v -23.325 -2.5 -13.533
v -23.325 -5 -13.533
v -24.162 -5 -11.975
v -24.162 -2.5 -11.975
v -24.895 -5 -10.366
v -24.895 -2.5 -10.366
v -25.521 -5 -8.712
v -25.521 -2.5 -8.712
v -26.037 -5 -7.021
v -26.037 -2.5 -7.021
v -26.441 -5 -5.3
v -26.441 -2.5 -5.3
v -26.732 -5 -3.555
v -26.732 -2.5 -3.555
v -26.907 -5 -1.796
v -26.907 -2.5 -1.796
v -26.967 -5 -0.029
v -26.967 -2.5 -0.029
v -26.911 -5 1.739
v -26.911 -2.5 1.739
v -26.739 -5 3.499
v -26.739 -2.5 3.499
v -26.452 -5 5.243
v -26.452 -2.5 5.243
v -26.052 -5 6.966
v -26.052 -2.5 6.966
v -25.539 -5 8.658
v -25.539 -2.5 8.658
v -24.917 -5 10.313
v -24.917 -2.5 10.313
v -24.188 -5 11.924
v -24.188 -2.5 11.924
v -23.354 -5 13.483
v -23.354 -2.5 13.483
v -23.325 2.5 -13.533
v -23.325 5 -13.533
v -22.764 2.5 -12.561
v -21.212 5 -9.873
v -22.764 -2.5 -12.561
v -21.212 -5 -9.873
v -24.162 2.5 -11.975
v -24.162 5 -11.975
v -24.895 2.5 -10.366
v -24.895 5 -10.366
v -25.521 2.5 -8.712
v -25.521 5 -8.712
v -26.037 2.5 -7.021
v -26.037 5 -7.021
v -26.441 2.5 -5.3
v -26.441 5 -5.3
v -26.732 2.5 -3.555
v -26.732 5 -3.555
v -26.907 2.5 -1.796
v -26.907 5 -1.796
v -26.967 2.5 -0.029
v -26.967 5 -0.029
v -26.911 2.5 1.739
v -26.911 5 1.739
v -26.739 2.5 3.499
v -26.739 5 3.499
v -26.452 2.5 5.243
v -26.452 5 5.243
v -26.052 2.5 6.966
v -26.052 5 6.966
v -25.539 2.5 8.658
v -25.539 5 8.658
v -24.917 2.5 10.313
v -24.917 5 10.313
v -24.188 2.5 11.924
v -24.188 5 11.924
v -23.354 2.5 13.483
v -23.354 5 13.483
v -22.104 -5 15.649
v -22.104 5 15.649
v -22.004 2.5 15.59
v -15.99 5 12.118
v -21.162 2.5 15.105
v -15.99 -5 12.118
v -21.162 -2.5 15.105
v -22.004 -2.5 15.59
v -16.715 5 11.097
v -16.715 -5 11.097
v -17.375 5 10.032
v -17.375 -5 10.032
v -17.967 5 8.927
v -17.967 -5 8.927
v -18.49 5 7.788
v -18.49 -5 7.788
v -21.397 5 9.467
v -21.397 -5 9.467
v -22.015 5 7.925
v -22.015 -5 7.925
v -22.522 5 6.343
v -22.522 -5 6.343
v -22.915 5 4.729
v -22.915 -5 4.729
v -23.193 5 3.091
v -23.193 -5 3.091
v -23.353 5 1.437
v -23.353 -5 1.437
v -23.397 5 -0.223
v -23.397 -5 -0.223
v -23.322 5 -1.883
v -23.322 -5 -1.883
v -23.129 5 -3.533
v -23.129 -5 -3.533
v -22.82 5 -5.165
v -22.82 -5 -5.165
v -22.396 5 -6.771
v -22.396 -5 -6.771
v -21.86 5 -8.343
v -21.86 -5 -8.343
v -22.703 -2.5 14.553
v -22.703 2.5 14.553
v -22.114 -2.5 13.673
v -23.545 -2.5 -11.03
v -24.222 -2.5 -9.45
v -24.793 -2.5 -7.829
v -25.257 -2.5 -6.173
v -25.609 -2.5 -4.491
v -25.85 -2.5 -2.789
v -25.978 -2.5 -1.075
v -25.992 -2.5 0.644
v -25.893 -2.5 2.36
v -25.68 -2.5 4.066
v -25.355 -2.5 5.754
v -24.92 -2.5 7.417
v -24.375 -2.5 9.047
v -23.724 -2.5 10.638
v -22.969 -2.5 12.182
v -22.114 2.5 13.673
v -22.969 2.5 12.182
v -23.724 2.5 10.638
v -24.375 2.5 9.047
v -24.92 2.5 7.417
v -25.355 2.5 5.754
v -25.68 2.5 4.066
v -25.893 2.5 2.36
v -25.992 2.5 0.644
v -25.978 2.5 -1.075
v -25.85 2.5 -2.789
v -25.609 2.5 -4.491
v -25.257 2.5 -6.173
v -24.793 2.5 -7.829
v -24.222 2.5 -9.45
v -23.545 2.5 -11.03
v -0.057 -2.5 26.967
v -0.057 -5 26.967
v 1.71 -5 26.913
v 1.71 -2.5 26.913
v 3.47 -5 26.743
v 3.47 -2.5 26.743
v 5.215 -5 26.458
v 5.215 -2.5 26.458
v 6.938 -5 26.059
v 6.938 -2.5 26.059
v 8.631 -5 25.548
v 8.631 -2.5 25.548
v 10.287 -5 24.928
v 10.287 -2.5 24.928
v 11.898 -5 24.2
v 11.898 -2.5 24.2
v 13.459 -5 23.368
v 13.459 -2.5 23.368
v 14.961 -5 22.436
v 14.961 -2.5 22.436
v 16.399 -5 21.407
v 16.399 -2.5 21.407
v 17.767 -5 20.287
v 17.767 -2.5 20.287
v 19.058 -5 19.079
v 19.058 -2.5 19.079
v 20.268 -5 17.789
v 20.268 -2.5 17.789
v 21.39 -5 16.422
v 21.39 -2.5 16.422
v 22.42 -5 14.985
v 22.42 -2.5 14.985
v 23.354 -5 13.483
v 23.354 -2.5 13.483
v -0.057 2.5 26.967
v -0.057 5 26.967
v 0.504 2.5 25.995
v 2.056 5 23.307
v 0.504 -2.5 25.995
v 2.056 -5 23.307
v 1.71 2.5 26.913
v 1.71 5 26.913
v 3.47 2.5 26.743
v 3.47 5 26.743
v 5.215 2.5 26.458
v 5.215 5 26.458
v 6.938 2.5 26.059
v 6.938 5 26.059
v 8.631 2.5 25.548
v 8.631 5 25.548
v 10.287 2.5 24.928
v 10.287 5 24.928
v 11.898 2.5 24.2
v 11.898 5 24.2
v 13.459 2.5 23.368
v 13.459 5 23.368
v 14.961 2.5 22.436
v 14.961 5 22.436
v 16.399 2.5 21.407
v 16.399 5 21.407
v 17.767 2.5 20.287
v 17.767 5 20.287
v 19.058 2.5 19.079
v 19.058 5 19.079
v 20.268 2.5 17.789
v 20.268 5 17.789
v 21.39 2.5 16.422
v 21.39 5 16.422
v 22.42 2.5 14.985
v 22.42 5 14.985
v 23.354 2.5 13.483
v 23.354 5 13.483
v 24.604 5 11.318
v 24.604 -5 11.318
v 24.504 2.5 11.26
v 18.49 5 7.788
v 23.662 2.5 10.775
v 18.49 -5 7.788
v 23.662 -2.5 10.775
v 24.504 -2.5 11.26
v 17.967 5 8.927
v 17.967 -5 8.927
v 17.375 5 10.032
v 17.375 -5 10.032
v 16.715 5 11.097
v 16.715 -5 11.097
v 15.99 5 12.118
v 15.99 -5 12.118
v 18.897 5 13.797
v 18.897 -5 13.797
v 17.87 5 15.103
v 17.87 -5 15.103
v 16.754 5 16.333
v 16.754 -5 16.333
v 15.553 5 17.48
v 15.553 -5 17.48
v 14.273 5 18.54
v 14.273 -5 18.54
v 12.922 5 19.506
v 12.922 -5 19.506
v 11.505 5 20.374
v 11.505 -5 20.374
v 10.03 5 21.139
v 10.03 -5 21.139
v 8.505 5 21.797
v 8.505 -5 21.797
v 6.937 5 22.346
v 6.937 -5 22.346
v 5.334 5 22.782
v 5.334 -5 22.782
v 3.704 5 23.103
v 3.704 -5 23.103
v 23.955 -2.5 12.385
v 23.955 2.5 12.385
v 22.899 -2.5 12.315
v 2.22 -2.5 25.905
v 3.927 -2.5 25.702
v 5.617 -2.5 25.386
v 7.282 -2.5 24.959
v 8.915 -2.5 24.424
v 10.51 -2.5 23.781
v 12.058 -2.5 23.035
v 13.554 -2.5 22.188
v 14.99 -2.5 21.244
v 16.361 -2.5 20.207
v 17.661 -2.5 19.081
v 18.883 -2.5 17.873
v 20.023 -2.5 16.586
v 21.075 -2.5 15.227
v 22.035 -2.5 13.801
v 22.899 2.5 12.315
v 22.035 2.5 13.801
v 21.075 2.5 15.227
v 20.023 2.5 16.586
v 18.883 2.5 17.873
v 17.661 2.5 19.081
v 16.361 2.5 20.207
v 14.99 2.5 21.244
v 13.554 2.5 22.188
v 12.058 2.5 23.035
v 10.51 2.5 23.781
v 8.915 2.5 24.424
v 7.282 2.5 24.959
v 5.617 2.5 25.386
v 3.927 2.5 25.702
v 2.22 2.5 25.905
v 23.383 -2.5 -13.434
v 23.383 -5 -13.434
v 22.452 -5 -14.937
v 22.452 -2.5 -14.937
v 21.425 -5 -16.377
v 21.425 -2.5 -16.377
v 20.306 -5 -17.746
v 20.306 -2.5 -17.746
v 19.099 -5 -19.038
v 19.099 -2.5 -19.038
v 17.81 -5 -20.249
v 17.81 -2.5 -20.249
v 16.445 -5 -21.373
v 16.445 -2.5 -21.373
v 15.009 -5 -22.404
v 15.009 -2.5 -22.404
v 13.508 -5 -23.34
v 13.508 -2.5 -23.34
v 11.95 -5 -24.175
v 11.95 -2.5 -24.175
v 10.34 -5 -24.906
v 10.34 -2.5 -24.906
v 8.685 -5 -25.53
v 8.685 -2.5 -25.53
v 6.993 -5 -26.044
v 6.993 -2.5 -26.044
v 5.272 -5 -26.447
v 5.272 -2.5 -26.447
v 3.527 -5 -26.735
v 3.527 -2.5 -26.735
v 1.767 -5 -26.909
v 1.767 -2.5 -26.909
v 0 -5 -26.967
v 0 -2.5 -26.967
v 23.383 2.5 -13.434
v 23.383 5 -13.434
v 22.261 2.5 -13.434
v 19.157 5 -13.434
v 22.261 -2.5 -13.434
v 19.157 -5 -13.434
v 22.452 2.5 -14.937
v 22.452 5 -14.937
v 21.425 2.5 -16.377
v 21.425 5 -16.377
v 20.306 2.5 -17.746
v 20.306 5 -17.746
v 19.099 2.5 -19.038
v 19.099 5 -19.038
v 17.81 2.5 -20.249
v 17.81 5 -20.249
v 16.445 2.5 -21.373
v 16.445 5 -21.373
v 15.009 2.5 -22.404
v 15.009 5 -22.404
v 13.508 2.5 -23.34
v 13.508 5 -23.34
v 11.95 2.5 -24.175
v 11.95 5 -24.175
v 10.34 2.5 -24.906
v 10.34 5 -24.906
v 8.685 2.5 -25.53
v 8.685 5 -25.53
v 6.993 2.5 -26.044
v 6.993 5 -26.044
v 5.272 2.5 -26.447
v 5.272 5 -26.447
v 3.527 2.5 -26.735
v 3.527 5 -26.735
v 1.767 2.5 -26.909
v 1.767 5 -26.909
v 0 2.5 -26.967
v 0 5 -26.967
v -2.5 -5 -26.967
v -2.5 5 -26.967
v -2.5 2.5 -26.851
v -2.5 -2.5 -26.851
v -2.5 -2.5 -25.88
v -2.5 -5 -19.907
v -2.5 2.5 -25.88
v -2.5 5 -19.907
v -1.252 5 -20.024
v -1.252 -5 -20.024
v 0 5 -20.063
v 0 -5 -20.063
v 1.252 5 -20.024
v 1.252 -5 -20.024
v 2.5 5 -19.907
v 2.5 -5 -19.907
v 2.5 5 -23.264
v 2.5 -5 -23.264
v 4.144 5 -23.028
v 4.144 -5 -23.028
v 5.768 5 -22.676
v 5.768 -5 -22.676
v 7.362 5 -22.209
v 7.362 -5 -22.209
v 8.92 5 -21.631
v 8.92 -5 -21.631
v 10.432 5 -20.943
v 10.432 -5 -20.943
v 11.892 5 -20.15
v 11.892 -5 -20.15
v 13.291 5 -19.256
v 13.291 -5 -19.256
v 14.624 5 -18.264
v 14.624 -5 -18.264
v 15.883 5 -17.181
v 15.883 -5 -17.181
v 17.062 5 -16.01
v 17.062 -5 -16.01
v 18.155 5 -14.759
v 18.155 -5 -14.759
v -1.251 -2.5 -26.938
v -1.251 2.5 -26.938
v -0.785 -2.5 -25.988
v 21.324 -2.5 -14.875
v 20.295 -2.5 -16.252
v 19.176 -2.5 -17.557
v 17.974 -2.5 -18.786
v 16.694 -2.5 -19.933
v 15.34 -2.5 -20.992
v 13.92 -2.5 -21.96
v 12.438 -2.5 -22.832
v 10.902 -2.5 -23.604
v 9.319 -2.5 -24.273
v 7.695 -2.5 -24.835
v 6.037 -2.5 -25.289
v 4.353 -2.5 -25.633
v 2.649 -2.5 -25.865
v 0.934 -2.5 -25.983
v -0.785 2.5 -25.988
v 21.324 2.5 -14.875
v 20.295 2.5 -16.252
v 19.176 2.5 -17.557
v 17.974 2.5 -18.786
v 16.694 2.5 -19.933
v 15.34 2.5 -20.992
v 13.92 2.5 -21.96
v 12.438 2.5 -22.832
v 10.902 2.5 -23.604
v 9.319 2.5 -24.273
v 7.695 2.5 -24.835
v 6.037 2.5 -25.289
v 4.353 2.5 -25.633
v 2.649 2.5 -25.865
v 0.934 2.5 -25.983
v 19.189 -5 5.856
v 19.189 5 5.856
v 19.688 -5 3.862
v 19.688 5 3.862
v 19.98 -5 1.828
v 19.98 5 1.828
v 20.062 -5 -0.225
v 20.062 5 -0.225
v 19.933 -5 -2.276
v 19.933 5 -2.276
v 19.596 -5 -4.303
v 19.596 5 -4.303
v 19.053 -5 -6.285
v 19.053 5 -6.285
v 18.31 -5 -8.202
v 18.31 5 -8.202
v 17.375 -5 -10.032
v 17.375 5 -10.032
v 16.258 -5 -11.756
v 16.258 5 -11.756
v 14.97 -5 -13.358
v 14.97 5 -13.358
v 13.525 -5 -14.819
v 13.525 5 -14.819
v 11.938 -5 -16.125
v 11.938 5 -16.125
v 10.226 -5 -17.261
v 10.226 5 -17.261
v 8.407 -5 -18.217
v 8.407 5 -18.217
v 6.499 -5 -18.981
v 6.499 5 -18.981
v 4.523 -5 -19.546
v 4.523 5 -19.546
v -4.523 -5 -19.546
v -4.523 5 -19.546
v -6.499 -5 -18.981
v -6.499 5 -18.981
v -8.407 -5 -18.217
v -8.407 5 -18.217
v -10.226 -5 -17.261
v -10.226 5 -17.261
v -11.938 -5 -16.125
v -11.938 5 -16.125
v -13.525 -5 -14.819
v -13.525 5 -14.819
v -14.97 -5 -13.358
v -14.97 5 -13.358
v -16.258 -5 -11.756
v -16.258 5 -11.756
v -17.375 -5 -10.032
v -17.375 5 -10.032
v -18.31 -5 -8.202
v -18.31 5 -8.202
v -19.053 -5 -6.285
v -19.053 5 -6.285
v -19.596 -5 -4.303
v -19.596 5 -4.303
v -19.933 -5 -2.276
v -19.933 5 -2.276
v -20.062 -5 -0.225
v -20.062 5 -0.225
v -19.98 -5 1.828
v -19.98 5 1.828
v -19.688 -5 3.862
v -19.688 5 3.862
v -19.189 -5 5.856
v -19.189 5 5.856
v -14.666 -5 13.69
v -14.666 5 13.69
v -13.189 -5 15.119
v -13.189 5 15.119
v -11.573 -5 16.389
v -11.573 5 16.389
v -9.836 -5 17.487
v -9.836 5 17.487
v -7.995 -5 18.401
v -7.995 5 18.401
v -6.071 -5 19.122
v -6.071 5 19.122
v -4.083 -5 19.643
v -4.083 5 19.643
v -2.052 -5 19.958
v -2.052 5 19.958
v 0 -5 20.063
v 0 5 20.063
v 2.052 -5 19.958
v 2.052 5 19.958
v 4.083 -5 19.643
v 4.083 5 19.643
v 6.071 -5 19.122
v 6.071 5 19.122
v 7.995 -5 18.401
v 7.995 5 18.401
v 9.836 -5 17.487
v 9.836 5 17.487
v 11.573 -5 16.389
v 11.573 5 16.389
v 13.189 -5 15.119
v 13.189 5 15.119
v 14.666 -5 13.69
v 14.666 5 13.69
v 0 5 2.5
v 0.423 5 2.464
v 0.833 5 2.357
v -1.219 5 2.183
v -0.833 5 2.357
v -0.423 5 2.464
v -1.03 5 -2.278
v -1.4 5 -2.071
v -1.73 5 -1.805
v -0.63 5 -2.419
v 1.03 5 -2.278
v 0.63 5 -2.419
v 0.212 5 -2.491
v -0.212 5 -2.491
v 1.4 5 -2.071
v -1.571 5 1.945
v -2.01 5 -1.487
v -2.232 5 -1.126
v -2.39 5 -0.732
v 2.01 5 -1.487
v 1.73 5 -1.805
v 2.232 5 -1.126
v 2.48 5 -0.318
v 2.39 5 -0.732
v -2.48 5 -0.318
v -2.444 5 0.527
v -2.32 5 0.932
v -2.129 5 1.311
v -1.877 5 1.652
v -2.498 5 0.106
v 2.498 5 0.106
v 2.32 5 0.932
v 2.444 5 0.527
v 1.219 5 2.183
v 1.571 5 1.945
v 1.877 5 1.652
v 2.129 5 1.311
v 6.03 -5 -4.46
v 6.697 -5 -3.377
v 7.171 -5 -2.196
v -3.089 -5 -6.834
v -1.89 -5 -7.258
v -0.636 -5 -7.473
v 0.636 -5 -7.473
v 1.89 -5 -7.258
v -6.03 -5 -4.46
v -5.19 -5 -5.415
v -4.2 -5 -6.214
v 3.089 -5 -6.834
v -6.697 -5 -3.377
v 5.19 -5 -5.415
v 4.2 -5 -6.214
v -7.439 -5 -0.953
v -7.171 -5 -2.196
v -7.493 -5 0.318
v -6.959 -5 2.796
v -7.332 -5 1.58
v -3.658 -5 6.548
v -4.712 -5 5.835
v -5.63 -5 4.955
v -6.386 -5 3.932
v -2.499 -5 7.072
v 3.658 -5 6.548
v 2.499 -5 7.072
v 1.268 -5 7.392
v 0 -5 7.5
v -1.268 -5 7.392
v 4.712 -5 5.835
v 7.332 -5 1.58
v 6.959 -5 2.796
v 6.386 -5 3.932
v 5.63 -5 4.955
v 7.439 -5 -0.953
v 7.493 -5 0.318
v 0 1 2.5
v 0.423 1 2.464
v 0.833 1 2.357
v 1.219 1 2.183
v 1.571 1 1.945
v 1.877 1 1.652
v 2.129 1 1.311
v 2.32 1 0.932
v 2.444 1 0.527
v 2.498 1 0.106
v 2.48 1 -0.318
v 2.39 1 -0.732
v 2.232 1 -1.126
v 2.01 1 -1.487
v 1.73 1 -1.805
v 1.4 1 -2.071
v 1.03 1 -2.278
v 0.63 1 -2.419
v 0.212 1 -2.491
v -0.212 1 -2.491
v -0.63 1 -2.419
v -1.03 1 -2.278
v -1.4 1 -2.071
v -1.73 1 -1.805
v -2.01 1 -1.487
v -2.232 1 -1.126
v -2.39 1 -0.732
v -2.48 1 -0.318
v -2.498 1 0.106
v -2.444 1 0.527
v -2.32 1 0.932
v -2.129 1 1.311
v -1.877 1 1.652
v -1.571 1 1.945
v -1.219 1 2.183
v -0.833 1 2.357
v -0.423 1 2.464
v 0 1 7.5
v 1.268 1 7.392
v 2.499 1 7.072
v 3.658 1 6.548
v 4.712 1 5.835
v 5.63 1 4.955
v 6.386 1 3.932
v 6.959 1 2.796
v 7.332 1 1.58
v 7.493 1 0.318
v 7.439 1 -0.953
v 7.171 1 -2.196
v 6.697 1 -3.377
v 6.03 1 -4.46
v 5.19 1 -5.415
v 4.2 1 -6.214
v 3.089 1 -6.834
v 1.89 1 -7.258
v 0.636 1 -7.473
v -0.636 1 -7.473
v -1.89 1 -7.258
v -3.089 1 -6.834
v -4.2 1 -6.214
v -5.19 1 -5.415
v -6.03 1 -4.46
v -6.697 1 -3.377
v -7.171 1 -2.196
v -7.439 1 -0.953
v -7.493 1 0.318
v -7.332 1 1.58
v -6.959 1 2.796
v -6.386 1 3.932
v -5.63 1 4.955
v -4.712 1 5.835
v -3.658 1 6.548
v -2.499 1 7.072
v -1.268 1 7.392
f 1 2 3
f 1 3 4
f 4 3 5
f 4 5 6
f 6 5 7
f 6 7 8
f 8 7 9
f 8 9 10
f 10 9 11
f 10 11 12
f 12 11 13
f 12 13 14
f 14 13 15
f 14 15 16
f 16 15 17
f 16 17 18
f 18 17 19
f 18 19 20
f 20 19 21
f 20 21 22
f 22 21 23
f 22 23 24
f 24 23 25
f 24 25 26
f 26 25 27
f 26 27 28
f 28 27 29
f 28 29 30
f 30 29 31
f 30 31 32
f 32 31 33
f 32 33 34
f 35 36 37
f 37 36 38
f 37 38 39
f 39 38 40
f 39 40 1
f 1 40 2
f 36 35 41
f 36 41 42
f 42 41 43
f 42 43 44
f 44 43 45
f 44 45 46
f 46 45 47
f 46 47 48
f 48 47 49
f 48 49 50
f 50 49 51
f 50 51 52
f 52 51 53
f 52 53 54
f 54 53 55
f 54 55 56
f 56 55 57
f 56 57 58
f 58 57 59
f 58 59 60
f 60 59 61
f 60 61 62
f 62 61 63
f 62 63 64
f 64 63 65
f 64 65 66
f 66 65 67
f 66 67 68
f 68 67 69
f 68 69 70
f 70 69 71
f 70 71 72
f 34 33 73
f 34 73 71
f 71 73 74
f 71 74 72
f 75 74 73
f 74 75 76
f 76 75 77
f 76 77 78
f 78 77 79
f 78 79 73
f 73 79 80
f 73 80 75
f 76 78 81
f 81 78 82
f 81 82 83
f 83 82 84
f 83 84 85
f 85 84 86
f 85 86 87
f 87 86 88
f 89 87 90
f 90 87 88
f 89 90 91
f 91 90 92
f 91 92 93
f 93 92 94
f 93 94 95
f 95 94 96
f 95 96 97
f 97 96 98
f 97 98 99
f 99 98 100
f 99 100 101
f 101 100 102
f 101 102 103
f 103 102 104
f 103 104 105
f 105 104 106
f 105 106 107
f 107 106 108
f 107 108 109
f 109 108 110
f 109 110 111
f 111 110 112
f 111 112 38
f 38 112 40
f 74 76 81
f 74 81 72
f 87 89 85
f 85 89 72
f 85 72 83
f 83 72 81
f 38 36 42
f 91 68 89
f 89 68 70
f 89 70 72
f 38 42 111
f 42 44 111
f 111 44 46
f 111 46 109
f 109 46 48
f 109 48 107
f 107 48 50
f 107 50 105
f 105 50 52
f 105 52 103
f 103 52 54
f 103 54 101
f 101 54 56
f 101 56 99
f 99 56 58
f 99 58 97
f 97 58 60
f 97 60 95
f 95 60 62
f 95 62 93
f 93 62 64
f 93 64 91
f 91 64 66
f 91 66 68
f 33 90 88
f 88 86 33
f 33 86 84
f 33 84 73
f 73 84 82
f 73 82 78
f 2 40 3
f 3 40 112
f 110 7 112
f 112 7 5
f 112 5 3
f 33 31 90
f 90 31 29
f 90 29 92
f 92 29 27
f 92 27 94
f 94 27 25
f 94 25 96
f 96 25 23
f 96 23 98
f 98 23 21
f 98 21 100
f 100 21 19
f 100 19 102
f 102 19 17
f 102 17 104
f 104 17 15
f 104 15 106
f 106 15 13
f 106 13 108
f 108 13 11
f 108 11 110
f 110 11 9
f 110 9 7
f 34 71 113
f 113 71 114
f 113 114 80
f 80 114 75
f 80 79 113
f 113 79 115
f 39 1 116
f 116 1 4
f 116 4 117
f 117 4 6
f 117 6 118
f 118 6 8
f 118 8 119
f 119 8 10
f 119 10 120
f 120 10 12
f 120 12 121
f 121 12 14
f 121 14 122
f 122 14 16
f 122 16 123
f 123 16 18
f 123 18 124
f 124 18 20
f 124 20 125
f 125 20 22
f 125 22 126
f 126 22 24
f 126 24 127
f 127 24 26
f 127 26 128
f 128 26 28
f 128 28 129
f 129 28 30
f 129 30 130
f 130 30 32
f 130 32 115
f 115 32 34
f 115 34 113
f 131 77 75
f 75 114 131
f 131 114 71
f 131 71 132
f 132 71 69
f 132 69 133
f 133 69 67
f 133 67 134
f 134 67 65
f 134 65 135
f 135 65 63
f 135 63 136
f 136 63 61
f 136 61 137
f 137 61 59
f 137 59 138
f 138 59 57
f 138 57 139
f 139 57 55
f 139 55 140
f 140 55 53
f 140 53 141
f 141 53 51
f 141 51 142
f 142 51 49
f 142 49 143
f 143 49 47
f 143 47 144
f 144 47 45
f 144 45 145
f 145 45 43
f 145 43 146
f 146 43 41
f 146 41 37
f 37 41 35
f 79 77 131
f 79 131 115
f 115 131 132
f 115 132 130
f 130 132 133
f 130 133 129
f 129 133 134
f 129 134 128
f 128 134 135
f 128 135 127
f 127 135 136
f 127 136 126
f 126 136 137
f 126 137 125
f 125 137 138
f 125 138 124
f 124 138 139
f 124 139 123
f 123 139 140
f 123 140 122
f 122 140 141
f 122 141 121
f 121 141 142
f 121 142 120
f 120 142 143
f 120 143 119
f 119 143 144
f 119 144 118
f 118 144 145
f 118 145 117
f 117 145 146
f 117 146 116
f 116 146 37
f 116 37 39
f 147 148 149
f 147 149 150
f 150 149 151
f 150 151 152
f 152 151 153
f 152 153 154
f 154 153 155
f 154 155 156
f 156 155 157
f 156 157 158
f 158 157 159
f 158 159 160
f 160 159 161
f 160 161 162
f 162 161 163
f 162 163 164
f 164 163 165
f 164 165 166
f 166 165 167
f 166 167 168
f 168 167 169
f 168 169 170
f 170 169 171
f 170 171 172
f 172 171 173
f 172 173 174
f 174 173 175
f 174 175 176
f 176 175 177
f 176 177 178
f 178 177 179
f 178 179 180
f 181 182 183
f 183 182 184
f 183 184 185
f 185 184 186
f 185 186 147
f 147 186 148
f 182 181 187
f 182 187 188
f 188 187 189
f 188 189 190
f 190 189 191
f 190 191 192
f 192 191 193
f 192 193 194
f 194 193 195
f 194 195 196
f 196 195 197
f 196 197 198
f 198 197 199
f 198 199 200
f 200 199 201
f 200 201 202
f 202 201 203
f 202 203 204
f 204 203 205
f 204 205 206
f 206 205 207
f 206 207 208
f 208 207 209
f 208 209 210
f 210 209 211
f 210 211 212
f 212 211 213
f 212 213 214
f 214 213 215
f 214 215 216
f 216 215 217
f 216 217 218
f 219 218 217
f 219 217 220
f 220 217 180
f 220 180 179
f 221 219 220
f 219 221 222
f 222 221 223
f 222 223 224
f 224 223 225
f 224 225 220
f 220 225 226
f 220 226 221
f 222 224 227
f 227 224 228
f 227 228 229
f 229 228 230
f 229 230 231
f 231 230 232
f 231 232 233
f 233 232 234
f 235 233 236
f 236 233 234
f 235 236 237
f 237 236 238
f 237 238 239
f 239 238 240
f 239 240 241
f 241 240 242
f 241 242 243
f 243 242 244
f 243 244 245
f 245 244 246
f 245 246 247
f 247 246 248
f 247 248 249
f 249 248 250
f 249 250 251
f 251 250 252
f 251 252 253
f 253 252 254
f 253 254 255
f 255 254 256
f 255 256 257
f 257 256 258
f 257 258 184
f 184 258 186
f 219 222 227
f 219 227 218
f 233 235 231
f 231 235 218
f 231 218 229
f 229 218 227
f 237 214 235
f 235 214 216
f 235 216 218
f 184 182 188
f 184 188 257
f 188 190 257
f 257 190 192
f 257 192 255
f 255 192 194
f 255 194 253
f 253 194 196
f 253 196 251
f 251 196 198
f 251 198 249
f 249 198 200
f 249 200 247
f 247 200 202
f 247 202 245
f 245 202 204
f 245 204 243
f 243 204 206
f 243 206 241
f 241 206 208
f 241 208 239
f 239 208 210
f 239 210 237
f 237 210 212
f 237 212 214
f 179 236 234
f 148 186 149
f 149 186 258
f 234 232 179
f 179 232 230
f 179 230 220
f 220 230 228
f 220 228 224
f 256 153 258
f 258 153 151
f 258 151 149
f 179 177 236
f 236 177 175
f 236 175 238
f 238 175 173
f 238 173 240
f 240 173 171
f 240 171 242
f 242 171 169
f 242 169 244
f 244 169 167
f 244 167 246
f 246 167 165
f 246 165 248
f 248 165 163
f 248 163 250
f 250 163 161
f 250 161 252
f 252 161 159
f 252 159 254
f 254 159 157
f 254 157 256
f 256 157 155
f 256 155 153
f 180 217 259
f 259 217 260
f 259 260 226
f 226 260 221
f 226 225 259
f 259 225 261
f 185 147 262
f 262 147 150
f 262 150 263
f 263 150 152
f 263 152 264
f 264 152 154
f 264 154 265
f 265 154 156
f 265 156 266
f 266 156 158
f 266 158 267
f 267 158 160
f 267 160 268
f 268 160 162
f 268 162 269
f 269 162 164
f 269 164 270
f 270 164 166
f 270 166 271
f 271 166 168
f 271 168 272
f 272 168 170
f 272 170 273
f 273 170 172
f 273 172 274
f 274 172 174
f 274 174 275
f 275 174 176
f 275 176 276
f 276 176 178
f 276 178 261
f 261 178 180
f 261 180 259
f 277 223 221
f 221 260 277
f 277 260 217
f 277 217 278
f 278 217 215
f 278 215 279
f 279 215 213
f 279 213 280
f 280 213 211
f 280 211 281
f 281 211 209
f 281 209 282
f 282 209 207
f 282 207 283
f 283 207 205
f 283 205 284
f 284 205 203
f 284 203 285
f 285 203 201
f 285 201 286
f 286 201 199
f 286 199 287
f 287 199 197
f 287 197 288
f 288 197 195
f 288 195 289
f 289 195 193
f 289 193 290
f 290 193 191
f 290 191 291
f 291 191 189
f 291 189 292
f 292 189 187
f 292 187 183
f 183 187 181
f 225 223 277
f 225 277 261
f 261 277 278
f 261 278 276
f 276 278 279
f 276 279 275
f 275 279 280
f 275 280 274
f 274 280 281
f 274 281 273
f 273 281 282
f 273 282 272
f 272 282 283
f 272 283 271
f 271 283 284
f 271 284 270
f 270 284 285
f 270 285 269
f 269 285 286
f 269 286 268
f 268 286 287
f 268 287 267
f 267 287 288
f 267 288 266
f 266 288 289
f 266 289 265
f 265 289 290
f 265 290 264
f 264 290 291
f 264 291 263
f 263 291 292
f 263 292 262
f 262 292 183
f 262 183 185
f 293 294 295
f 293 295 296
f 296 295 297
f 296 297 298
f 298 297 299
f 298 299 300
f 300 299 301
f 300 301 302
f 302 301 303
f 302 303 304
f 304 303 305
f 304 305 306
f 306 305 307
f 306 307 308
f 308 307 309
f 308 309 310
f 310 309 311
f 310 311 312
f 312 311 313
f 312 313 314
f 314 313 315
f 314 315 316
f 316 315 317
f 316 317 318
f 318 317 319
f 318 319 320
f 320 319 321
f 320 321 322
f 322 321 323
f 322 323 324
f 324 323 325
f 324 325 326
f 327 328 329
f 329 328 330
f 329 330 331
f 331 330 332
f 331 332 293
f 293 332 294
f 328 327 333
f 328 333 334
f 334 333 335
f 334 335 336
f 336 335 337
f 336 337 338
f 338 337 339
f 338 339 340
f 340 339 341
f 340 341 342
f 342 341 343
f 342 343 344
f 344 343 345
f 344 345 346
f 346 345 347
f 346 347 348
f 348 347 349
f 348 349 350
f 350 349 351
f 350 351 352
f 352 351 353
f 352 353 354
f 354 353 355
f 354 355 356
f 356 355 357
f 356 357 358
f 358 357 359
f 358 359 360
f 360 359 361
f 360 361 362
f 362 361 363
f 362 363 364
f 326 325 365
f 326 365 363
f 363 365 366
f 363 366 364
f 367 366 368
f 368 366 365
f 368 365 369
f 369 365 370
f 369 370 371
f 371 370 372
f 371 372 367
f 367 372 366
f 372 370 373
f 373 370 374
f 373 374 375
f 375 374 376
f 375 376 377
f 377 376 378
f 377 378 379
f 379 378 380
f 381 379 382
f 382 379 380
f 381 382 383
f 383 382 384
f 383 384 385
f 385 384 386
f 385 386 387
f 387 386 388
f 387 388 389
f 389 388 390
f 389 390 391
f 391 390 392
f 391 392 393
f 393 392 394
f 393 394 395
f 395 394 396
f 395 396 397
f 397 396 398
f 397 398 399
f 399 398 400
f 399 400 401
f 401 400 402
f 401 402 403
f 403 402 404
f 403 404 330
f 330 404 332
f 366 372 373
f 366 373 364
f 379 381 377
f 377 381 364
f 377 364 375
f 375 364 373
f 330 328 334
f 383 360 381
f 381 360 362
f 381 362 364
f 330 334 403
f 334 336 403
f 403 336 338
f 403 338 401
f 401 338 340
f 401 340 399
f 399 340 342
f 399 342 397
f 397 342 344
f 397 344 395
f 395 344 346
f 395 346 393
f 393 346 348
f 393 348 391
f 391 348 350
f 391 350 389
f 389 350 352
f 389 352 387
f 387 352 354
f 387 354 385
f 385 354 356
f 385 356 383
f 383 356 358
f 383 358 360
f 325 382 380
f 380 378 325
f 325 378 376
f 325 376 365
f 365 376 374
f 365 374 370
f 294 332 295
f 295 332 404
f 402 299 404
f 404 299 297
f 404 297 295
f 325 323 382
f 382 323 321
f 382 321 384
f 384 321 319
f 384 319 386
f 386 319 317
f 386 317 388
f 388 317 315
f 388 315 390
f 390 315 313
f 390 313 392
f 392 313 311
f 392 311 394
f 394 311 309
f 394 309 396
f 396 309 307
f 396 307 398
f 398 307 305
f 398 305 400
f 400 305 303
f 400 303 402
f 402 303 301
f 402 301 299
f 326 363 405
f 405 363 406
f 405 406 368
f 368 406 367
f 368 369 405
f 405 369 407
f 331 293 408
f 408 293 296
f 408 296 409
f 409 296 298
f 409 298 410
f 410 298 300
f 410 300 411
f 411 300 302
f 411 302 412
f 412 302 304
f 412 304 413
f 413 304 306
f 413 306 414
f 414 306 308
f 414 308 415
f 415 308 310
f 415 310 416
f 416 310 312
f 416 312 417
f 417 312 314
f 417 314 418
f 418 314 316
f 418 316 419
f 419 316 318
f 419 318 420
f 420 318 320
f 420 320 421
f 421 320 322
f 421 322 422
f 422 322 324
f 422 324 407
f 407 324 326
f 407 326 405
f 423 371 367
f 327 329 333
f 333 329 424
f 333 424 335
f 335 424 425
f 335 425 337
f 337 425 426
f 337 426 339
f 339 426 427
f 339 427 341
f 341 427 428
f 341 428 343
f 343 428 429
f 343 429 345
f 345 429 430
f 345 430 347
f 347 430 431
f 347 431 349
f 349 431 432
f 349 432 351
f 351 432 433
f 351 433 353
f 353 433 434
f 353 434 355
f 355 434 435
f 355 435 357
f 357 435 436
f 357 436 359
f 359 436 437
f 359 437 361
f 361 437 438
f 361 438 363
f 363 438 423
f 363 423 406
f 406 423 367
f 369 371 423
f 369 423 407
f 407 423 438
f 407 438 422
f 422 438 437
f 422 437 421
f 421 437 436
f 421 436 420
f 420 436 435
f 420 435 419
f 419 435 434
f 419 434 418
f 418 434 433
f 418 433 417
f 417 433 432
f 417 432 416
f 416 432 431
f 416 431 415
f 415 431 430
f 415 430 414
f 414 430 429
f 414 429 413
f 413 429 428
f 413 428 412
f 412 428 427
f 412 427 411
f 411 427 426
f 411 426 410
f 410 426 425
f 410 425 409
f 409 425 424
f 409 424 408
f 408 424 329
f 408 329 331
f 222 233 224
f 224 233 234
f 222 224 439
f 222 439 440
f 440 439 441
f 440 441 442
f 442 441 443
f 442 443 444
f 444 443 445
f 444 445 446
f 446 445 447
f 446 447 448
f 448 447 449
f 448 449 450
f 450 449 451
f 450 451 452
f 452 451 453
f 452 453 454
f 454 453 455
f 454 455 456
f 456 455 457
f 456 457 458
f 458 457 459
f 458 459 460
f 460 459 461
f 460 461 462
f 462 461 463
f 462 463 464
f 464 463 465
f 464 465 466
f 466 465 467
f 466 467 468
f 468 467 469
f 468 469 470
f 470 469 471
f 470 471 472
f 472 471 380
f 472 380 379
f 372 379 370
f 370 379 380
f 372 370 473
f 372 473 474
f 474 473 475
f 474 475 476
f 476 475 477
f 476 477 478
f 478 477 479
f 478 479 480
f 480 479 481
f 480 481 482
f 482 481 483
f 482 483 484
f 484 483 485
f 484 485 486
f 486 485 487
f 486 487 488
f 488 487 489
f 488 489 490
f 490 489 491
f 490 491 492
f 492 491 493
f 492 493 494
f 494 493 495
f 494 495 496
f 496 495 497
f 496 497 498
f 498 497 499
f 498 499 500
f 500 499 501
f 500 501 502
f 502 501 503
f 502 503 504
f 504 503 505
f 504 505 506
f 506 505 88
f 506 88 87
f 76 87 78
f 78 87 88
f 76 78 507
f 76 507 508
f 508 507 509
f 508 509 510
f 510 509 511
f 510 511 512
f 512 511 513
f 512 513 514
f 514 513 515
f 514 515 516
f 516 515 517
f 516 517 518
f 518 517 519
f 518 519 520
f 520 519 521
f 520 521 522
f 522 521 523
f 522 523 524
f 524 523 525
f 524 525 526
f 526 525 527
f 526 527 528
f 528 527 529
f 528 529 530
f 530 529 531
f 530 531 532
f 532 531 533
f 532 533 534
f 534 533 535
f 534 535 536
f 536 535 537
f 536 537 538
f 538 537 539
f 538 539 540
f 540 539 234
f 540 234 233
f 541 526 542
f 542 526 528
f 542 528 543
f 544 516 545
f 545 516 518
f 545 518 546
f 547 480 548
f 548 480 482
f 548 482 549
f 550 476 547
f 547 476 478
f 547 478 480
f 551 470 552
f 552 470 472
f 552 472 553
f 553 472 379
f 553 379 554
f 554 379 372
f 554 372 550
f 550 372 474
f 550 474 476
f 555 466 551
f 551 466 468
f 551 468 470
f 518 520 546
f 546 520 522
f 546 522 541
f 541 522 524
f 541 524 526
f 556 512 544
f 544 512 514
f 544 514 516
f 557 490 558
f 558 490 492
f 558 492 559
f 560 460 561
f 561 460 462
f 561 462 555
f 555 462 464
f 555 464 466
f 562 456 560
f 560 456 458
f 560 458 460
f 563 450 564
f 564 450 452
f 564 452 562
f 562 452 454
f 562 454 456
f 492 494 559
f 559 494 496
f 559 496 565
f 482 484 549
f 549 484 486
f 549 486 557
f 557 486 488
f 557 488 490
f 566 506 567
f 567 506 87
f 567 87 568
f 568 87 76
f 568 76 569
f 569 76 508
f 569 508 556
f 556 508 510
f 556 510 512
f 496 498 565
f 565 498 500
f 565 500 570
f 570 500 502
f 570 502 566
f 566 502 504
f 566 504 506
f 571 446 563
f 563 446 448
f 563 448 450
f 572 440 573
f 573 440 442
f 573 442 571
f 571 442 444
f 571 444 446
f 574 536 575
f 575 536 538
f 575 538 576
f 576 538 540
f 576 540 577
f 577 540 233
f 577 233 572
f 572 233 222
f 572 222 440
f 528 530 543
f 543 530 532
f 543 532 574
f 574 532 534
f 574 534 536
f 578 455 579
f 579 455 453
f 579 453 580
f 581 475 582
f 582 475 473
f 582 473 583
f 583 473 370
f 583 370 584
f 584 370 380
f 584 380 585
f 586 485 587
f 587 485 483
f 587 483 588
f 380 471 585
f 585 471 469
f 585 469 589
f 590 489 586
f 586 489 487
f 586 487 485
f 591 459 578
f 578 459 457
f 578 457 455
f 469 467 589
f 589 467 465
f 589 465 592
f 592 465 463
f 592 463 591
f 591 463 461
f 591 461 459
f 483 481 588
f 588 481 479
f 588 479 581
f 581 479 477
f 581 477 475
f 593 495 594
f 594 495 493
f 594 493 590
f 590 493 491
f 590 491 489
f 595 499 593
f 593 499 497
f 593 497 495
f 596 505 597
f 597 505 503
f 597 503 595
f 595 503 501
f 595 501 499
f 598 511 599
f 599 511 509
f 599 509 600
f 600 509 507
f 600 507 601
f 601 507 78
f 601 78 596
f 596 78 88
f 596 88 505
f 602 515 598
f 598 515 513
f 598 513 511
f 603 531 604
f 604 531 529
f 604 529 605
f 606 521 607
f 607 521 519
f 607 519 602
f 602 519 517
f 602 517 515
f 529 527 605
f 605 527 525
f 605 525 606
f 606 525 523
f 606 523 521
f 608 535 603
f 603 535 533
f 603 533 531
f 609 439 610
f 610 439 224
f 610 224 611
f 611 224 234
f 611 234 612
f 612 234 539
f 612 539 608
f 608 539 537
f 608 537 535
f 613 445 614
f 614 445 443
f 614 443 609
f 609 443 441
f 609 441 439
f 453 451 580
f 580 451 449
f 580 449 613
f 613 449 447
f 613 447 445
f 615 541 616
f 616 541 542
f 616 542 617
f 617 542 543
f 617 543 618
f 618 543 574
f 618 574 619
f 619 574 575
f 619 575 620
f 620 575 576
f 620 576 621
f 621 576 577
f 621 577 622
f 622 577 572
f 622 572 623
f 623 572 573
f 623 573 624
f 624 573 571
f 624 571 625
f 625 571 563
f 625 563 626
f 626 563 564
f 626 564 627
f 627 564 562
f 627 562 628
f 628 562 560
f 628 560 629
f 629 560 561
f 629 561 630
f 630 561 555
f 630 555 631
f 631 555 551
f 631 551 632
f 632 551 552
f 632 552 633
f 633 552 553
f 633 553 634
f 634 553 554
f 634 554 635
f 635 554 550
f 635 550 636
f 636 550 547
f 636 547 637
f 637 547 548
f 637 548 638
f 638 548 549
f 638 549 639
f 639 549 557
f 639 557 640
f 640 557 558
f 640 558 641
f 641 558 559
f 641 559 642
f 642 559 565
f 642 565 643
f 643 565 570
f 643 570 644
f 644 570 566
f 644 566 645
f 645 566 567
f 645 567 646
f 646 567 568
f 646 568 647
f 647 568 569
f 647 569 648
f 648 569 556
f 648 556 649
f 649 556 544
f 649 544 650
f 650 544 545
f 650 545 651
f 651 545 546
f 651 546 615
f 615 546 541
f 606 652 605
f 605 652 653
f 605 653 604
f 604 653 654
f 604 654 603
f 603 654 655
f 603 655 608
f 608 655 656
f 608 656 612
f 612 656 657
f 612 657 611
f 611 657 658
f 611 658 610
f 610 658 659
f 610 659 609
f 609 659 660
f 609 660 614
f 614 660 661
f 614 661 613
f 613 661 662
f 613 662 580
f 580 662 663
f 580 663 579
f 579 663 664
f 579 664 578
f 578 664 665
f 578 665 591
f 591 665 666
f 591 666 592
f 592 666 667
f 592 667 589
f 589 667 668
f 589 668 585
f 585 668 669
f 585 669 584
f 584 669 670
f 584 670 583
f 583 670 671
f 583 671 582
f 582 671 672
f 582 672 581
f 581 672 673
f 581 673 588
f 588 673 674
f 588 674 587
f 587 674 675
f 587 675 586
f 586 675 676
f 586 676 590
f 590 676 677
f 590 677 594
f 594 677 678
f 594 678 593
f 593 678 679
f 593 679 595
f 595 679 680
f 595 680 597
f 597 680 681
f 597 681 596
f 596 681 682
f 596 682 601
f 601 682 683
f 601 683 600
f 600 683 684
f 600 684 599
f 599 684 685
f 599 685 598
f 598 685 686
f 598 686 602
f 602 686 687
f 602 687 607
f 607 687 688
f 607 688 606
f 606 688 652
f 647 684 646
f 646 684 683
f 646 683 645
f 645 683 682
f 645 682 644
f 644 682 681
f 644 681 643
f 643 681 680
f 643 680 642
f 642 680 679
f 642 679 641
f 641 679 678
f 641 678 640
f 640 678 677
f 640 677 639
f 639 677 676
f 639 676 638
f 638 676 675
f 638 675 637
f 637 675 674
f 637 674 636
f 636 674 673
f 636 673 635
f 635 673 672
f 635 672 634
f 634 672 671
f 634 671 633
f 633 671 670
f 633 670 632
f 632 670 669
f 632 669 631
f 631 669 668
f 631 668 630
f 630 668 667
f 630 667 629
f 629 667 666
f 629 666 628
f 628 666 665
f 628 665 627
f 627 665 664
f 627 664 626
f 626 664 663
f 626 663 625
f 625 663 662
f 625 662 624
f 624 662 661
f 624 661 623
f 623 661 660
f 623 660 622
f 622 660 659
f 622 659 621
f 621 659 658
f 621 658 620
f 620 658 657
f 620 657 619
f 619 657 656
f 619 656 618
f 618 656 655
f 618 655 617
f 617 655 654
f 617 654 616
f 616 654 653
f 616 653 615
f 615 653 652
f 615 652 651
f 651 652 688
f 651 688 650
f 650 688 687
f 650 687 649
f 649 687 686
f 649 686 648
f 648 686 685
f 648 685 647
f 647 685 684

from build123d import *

# Parameters (mm, degrees)
BOSS_EXTRUDE1_DEPTH = 5
SKETCH2_R           = 26.9669807454053
SKETCH2_R_2         = 26
CUT_EXTRUDE1_DEPTH  = 2.5
SKETCH3_R           = 2.5
CUT_EXTRUDE2_DEPTH  = 7.5
SKETCH4_R           = 7.5
CUT_EXTRUDE3_DEPTH  = 3.5


with BuildPart() as part:
    # Sketch1 → Boss-Extrude1 (new, symmetric)
    with BuildSketch(Plane(origin=(0, 0, 0), x_dir=(1, 0, 0), z_dir=(0, 1, 0))):
        with BuildLine():
            ThreePointArc((20.063017132795874, 0), (15.044636906599731, 13.27341541651726), (2.49999999999975, 19.9066485494385))
            Line((2.5000000000000173, 19.906648549440643), (-2.4999999999982294, 19.906648549440643))
            ThreePointArc((-2.4999999999979883, 19.906648549438724), (-17.375082513563218, 10.031508566398701), (-18.48966334802226, -7.788260765258384))
            Line((-18.489663348024244, -7.788260765259216), (-15.98966334802512, -12.118387784179893))
            ThreePointArc((-15.989663348023583, -12.11838778417872), (-8.9466e-13, -20.063017132795874), (15.989663348022514, -12.118387784180133))
            Line((15.989663348024235, -12.11838778418143), (18.489663348023356, -7.788260765260754))
            ThreePointArc((18.489663348021576, -7.7882607652599996), (19.665745460086754, -3.9727964923889556), (20.063017132795874, -4.91e-15))
        make_face()
        with BuildLine():
            ThreePointArc((-15.989663348023583, -12.11838778417872), (-17.375082513564102, -10.031508566397168), (-18.489663348022262, -7.788260765258375))
            Line((-18.489663348024244, -7.788260765259216), (-21.3969713936379, -9.466795848011426))
            Line((-21.3969713936379, -9.466795848011426), (-24.50351667796262, -11.260360604166063))
            ThreePointArc((-24.503516677963194, -11.26036060416524), (-23.954607386329478, -12.385266871967934), (-23.35409038888675, -13.483490372702635))
            Line((-23.354090388886846, -13.48349037270269), (-22.104090388887734, -15.648553882162249))
            Line((-22.104090388887734, -15.648553882162249), (-15.98966334802512, -12.118387784179893))
        make_face()
        with BuildLine():
            Line((-24.50351667796262, -11.260360604166063), (-21.3969713936379, -9.466795848011426))
            ThreePointArc((-21.396971393638005, -9.46679584801125), (-23.396597505564916, 0.2232344298700557), (-21.21244090731292, 9.873345897001858))
            Line((-21.212440907312917, 9.873345897001856), (-23.325389447998635, 13.533080123248036))
            ThreePointArc((-23.32538944799864, 13.53308012324804), (-26.936587405932773, 1.2799646266991034), (-24.503516677963198, -11.26036060416524))
        make_face()
        with BuildLine():
            Line((24.604090388885975, -11.318426863243111), (18.489663348023356, -7.788260765260754))
            ThreePointArc((18.489663348021576, -7.7882607652599996), (17.375082513563214, -10.031508566398703), (15.989663348022514, -12.118387784180133))
            Line((15.989663348024235, -12.11838778418143), (18.896971393637905, -13.796922866933649))
            Line((18.896971393637905, -13.796922866933649), (22.003516677962654, -15.590487623088306))
            ThreePointArc((22.003516677962352, -15.590487623088949), (22.703259436938875, -14.552665098259599), (23.35409038888676, -13.483490372702617))
            Line((23.35409038888686, -13.483490372702676), (24.604090388885975, -11.318426863243111))
        make_face()
        with BuildLine():
            Line((22.003516677962654, -15.590487623088306), (18.896971393637905, -13.796922866933649))
            ThreePointArc((18.89697139363786, -13.796922866933729), (11.504972065515755, -20.37366501687383), (2.05565208650211, -23.307185650510142))
            Line((2.055652086502111, -23.307185650510142), (-0.05729645418372886, -26.966919876756325))
            ThreePointArc((-0.05729645418372531, -26.96691987675633), (12.359811820299626, -23.967751298147242), (22.003516677962352, -15.59048762308895))
        make_face()
        with BuildLine():
            ThreePointArc((2.500000000000001, 23.263718714945085), (11.891625440049078, 20.15043058700393), (19.1567888208108, 13.433839753508472))
            Line((19.156788820810803, 13.433839753508472), (23.382685902182367, 13.433839753508277))
            ThreePointArc((23.38268590218237, 13.433839753508279), (14.57677558563277, 22.687786671448528), (2.499999999999801, 26.85084822725454))
            Line((2.5000000000000204, 26.85084822725456), (2.500000000000019, 23.263718714945085))
        make_face()
        with BuildLine():
            Line((2.5000000000000178, 19.906648549440643), (2.500000000000019, 23.263718714945085))
            Line((2.500000000000019, 23.263718714945085), (2.5000000000000204, 26.85084822725456))
            ThreePointArc((2.499999999999801, 26.85084822725454), (1.2513479493900797, 26.937931970227677), (0, 26.966980745405245))
            Line((0, 26.966980745405355), (-2.4999999999982263, 26.966980745405355))
            Line((-2.4999999999982263, 26.966980745405355), (-2.4999999999982294, 19.906648549440643))
            ThreePointArc((-2.4999999999979883, 19.906648549438724), (8.8775e-13, 20.063017132795874), (2.49999999999975, 19.9066485494385))
        make_face()
    extrude(amount=BOSS_EXTRUDE1_DEPTH, both=True)

    # Sketch2 → Cut-Extrude1 (cut, symmetric)
    with BuildSketch(Plane(origin=(0, 0, 0), x_dir=(1, 0, 0), z_dir=(0, 1, 0))):
        Circle(SKETCH2_R)
        Circle(SKETCH2_R_2, mode=Mode.SUBTRACT)
    extrude(amount=CUT_EXTRUDE1_DEPTH, both=True, mode=Mode.SUBTRACT)

    # Sketch3 → Cut-Extrude2 (cut, symmetric)
    with BuildSketch(Plane(origin=(0, 5, 0), x_dir=(1, 0, 0), z_dir=(0, 1, 0))):
        with Locations(Location((0, 0, 0), (0, 0, 270))):
            Circle(SKETCH3_R)
    extrude(amount=CUT_EXTRUDE2_DEPTH, both=True, mode=Mode.SUBTRACT)

    # Sketch4 → Cut-Extrude3 (cut, symmetric)
    with BuildSketch(Plane(origin=(0, -2.4999999999999987, 0), x_dir=(1, 0, 0), z_dir=(0, 1, 0))):
        with Locations(Location((0, 0, 0), (0, 0, 270))):
            Circle(SKETCH4_R)
    extrude(amount=CUT_EXTRUDE3_DEPTH, both=True, mode=Mode.SUBTRACT)


solid = part.part
